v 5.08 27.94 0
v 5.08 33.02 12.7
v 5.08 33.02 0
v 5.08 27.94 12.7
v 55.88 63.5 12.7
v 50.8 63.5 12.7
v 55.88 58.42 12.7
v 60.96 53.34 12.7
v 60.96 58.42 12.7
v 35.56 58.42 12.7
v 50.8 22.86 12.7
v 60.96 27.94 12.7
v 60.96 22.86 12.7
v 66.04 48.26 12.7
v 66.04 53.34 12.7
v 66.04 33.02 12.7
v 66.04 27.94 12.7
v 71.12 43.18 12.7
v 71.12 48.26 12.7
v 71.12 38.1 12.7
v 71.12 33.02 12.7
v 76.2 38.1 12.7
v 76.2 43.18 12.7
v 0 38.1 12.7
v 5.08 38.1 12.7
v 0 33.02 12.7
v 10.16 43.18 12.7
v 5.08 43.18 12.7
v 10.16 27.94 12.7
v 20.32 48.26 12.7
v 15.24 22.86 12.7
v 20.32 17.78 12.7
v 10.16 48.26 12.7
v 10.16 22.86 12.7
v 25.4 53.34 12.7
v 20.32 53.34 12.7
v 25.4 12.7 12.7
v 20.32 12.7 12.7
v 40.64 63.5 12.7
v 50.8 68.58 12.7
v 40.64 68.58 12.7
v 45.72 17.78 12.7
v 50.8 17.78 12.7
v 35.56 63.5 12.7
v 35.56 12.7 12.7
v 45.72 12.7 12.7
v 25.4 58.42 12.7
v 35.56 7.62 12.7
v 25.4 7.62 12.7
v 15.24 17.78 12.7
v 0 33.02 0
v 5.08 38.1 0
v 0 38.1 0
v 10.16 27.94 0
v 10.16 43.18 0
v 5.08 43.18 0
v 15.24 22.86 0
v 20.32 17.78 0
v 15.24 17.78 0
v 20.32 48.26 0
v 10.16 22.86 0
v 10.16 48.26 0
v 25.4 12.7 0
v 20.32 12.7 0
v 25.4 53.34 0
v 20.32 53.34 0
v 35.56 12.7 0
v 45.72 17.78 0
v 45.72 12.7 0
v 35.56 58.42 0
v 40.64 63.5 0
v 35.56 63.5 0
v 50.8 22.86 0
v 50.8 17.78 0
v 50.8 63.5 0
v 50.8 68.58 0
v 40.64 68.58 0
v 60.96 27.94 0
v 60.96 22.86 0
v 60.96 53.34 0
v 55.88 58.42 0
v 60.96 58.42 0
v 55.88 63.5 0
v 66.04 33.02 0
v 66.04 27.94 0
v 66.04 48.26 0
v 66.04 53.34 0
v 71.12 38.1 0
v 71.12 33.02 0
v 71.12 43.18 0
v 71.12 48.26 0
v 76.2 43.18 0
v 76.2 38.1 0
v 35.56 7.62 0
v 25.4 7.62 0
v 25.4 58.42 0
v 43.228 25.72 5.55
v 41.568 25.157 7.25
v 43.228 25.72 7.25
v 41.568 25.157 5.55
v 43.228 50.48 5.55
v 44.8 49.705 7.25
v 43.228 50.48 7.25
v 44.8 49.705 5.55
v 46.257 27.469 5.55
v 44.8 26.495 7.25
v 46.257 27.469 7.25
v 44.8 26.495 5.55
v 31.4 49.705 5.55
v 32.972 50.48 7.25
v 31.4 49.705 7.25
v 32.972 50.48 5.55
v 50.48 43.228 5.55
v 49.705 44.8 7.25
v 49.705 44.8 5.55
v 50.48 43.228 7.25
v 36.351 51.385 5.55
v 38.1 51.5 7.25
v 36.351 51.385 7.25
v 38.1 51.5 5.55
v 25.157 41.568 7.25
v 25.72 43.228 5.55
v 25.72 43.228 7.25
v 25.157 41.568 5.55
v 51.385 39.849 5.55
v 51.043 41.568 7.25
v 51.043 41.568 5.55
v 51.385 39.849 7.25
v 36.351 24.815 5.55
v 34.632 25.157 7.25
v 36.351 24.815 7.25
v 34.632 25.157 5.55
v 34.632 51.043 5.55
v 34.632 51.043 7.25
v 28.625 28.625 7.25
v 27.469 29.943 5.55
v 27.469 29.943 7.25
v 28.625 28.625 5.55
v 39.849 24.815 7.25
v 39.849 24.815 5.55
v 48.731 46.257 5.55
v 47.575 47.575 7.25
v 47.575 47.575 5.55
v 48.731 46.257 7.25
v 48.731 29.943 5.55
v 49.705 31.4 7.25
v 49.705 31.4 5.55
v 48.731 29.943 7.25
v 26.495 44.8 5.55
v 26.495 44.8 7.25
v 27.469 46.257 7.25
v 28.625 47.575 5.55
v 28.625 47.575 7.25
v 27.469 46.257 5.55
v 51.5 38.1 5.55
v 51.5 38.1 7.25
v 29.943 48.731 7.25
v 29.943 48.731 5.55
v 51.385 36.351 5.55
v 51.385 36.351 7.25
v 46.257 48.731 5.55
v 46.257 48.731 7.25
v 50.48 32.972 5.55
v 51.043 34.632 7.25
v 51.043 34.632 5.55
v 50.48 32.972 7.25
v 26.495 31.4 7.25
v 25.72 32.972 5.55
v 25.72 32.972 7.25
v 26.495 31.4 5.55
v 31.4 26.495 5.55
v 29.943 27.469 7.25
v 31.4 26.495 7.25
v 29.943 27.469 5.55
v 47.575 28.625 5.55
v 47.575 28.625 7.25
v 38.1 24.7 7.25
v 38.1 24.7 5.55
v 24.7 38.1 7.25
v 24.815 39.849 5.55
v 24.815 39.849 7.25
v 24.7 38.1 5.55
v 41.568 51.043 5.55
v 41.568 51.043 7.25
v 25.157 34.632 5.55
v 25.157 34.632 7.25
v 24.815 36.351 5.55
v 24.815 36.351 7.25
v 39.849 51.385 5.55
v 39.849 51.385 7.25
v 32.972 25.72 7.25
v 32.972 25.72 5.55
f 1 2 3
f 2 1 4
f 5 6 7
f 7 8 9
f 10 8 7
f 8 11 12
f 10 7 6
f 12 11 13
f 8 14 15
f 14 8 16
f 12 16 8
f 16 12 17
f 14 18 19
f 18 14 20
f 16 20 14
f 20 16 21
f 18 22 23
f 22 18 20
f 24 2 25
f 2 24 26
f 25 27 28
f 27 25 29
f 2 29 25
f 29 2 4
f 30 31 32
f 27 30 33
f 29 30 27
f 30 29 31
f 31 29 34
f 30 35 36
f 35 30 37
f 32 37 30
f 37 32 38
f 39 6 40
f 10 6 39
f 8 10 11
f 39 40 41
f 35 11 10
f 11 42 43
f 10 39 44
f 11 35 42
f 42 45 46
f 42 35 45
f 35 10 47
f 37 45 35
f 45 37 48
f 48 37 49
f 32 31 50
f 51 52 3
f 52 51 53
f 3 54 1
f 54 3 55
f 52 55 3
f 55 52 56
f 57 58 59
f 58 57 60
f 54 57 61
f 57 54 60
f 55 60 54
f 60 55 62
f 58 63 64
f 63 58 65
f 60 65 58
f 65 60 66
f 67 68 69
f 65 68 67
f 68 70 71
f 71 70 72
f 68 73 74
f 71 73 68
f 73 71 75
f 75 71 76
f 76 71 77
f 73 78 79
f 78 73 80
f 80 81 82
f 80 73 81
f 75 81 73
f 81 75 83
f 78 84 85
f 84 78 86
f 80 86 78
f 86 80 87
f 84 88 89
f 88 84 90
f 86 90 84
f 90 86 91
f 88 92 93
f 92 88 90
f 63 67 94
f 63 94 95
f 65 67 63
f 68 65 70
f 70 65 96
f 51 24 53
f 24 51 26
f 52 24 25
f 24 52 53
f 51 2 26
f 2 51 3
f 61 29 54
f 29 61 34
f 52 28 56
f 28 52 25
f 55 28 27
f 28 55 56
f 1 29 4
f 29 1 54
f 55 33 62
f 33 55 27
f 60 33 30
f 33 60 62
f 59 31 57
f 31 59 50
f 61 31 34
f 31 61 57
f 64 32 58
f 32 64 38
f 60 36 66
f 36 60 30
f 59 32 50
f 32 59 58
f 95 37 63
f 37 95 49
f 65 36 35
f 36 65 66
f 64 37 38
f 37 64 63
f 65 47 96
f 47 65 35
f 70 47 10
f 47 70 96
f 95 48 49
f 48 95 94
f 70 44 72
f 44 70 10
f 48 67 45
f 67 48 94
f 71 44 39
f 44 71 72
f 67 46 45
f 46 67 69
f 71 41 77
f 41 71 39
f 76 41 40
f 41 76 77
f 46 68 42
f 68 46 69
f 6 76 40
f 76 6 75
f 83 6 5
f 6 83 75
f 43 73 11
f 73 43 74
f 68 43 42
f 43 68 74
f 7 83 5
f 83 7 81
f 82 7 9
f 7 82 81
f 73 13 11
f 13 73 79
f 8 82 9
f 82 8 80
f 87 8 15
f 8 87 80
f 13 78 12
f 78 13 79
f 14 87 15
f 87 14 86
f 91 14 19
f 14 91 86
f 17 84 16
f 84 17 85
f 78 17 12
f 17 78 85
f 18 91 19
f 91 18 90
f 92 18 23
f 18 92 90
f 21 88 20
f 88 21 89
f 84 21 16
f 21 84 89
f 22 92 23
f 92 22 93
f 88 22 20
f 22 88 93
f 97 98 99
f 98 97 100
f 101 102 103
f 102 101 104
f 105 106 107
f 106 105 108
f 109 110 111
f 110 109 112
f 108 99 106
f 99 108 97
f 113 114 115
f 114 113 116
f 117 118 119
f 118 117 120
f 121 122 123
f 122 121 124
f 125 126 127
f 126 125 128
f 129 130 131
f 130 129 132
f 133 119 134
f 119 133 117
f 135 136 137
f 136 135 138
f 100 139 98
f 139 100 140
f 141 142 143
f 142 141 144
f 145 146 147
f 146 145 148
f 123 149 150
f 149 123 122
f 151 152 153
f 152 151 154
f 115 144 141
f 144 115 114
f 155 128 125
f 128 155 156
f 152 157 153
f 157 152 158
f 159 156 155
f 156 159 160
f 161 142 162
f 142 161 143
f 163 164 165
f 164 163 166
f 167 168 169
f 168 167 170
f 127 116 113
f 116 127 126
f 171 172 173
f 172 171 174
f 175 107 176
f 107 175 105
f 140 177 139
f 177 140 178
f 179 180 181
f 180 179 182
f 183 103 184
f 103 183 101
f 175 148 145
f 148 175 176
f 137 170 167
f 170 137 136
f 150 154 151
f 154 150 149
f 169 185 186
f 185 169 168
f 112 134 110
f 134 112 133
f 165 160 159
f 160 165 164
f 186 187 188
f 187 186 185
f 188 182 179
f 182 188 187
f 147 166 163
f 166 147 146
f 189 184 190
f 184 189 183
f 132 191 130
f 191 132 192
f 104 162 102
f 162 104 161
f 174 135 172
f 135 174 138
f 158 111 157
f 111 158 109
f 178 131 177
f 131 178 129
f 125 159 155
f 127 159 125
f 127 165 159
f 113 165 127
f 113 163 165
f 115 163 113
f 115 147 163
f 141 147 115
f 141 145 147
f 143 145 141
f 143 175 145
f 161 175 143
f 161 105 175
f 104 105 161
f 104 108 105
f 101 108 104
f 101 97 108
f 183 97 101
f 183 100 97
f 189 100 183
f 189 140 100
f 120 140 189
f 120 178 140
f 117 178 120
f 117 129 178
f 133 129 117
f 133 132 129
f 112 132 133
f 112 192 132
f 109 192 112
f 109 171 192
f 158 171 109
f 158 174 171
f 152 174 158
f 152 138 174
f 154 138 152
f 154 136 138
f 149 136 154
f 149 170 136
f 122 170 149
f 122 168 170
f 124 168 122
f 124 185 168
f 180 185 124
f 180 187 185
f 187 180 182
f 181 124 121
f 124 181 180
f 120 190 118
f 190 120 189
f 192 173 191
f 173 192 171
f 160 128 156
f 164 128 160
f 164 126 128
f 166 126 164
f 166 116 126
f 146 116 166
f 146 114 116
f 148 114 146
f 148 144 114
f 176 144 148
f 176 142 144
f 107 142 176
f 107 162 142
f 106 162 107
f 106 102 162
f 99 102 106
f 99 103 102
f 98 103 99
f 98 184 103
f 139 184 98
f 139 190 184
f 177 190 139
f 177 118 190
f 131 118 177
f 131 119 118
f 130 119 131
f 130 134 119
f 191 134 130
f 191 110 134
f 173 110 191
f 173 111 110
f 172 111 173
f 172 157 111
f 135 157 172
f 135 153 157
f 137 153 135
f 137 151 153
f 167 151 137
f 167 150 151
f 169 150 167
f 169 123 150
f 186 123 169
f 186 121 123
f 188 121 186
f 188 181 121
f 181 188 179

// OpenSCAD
// paper — Minecraft Item Shape 3D Model
// Auto-generated from minecraft/textures/item/paper.png
//
// Open in OpenSCAD → F5 preview → F6 render → F7 export STL

// ============================================================
// PARAMETERS
// ============================================================

GRID_SIZE_IN    = 3.0;           // crafting table slot size
PIXELS          = 15;              // grid divisions (shape-fitted)
PIXEL_MM        = (GRID_SIZE_IN * 25.4) / PIXELS;  // mm per pixel

DEPTH_IN        = 0.5;          // extrusion depth in inches
DEPTH_MM        = DEPTH_IN * 25.4;

// NFC tag (NTAG215 25mm coin)
TAG_DIAMETER    = 26;           // mm — slightly oversized for easy drop-in
TAG_THICKNESS   = 1.2;         // mm
TAG_CLEARANCE   = 0.4;         // mm extra around tag

cavity_d = TAG_DIAMETER + TAG_CLEARANCE * 2;
cavity_h = TAG_THICKNESS + TAG_CLEARANCE;

echo(str("Tag cavity: ", cavity_d, "mm dia × ", cavity_h, "mm deep"));
echo(str("PAUSE AT: ", DEPTH_MM / 2 + cavity_h / 2, "mm to insert tag"));

module tag_cavity() {
    cx = (7.0 + 0.5) * PIXEL_MM;
    cy = (PIXELS - 1 - 7.0 + 0.5) * PIXEL_MM;
    translate([cx, cy, DEPTH_MM / 2 - cavity_h / 2])
        cylinder(d = cavity_d, h = cavity_h + 0.1, $fn = 48);
}

module tag_shelf() {
    cx = (7.0 + 0.5) * PIXEL_MM;
    cy = (PIXELS - 1 - 7.0 + 0.5) * PIXEL_MM;
    translate([cx, cy, DEPTH_MM / 2 - cavity_h / 2 - 1.0])
        cylinder(d = cavity_d + 4, h = 1.0, $fn = 48);
}

echo(str("Pixel size: ", PIXEL_MM, "mm"));
echo(str("Footprint: ", PIXELS * PIXEL_MM, "mm = ", GRID_SIZE_IN, " in"));
echo(str("Depth: ", DEPTH_MM, "mm = ", DEPTH_IN, " in"));

// ============================================================
// PIXEL MAP — 98 opaque pixels
// ============================================================

item_pixels = [
    [0.0,7.5], [1.0,6.5], [1.0,7.5], [1.0,8.5], [2.0,5.5], [2.0,6.5], [2.0,7.5], [2.0,8.5],
    [2.0,9.5], [3.0,5.5], [3.0,6.5], [3.0,7.5], [3.0,8.5], [3.0,9.5], [3.0,10.5], [4.0,4.5],
    [4.0,5.5], [4.0,6.5], [4.0,7.5], [4.0,8.5], [4.0,9.5], [4.0,10.5], [4.0,11.5], [5.0,3.5],
    [5.0,4.5], [5.0,5.5], [5.0,6.5], [5.0,7.5], [5.0,8.5], [5.0,9.5], [5.0,10.5], [5.0,11.5],
    [5.0,12.5], [6.0,3.5], [6.0,4.5], [6.0,5.5], [6.0,6.5], [6.0,7.5], [6.0,8.5], [6.0,9.5],
    [6.0,10.5], [6.0,11.5], [6.0,12.5], [7.0,2.5], [7.0,3.5], [7.0,4.5], [7.0,5.5], [7.0,6.5],
    [7.0,7.5], [7.0,8.5], [7.0,9.5], [7.0,10.5], [7.0,11.5], [8.0,1.5], [8.0,2.5], [8.0,3.5],
    [8.0,4.5], [8.0,5.5], [8.0,6.5], [8.0,7.5], [8.0,8.5], [8.0,9.5], [8.0,10.5], [8.0,11.5],
    [9.0,1.5], [9.0,2.5], [9.0,3.5], [9.0,4.5], [9.0,5.5], [9.0,6.5], [9.0,7.5], [9.0,8.5],
    [9.0,9.5], [9.0,10.5], [10.0,2.5], [10.0,3.5], [10.0,4.5], [10.0,5.5], [10.0,6.5], [10.0,7.5],
    [10.0,8.5], [10.0,9.5], [11.0,3.5], [11.0,4.5], [11.0,5.5], [11.0,6.5], [11.0,7.5], [11.0,8.5],
    [11.0,9.5], [12.0,4.5], [12.0,5.5], [12.0,6.5], [12.0,7.5], [12.0,8.5], [13.0,5.5], [13.0,6.5],
    [13.0,7.5], [14.0,6.5]
];

// ============================================================
// MODULES
// ============================================================

module pixel_block(col, row) {
    translate([col * PIXEL_MM, (PIXELS - 1 - row) * PIXEL_MM, 0])
        cube([PIXEL_MM, PIXEL_MM, DEPTH_MM]);
}

module item_shape() {
    for (i = [0 : len(item_pixels) - 1])
        pixel_block(item_pixels[i][0], item_pixels[i][1]);
}

module item_final() {
    difference() {
        union() {
            item_shape();
            intersection() {
                item_shape();
                tag_shelf();
            }
        }
        tag_cavity();
    }
}

item_final();

// Cross-section view (uncomment to see tag cavity):
// difference() {
//     item_final();
//     translate([8 * PIXEL_MM + 50, 0, 0])
//         cube([100, 200, 100]);
// }
